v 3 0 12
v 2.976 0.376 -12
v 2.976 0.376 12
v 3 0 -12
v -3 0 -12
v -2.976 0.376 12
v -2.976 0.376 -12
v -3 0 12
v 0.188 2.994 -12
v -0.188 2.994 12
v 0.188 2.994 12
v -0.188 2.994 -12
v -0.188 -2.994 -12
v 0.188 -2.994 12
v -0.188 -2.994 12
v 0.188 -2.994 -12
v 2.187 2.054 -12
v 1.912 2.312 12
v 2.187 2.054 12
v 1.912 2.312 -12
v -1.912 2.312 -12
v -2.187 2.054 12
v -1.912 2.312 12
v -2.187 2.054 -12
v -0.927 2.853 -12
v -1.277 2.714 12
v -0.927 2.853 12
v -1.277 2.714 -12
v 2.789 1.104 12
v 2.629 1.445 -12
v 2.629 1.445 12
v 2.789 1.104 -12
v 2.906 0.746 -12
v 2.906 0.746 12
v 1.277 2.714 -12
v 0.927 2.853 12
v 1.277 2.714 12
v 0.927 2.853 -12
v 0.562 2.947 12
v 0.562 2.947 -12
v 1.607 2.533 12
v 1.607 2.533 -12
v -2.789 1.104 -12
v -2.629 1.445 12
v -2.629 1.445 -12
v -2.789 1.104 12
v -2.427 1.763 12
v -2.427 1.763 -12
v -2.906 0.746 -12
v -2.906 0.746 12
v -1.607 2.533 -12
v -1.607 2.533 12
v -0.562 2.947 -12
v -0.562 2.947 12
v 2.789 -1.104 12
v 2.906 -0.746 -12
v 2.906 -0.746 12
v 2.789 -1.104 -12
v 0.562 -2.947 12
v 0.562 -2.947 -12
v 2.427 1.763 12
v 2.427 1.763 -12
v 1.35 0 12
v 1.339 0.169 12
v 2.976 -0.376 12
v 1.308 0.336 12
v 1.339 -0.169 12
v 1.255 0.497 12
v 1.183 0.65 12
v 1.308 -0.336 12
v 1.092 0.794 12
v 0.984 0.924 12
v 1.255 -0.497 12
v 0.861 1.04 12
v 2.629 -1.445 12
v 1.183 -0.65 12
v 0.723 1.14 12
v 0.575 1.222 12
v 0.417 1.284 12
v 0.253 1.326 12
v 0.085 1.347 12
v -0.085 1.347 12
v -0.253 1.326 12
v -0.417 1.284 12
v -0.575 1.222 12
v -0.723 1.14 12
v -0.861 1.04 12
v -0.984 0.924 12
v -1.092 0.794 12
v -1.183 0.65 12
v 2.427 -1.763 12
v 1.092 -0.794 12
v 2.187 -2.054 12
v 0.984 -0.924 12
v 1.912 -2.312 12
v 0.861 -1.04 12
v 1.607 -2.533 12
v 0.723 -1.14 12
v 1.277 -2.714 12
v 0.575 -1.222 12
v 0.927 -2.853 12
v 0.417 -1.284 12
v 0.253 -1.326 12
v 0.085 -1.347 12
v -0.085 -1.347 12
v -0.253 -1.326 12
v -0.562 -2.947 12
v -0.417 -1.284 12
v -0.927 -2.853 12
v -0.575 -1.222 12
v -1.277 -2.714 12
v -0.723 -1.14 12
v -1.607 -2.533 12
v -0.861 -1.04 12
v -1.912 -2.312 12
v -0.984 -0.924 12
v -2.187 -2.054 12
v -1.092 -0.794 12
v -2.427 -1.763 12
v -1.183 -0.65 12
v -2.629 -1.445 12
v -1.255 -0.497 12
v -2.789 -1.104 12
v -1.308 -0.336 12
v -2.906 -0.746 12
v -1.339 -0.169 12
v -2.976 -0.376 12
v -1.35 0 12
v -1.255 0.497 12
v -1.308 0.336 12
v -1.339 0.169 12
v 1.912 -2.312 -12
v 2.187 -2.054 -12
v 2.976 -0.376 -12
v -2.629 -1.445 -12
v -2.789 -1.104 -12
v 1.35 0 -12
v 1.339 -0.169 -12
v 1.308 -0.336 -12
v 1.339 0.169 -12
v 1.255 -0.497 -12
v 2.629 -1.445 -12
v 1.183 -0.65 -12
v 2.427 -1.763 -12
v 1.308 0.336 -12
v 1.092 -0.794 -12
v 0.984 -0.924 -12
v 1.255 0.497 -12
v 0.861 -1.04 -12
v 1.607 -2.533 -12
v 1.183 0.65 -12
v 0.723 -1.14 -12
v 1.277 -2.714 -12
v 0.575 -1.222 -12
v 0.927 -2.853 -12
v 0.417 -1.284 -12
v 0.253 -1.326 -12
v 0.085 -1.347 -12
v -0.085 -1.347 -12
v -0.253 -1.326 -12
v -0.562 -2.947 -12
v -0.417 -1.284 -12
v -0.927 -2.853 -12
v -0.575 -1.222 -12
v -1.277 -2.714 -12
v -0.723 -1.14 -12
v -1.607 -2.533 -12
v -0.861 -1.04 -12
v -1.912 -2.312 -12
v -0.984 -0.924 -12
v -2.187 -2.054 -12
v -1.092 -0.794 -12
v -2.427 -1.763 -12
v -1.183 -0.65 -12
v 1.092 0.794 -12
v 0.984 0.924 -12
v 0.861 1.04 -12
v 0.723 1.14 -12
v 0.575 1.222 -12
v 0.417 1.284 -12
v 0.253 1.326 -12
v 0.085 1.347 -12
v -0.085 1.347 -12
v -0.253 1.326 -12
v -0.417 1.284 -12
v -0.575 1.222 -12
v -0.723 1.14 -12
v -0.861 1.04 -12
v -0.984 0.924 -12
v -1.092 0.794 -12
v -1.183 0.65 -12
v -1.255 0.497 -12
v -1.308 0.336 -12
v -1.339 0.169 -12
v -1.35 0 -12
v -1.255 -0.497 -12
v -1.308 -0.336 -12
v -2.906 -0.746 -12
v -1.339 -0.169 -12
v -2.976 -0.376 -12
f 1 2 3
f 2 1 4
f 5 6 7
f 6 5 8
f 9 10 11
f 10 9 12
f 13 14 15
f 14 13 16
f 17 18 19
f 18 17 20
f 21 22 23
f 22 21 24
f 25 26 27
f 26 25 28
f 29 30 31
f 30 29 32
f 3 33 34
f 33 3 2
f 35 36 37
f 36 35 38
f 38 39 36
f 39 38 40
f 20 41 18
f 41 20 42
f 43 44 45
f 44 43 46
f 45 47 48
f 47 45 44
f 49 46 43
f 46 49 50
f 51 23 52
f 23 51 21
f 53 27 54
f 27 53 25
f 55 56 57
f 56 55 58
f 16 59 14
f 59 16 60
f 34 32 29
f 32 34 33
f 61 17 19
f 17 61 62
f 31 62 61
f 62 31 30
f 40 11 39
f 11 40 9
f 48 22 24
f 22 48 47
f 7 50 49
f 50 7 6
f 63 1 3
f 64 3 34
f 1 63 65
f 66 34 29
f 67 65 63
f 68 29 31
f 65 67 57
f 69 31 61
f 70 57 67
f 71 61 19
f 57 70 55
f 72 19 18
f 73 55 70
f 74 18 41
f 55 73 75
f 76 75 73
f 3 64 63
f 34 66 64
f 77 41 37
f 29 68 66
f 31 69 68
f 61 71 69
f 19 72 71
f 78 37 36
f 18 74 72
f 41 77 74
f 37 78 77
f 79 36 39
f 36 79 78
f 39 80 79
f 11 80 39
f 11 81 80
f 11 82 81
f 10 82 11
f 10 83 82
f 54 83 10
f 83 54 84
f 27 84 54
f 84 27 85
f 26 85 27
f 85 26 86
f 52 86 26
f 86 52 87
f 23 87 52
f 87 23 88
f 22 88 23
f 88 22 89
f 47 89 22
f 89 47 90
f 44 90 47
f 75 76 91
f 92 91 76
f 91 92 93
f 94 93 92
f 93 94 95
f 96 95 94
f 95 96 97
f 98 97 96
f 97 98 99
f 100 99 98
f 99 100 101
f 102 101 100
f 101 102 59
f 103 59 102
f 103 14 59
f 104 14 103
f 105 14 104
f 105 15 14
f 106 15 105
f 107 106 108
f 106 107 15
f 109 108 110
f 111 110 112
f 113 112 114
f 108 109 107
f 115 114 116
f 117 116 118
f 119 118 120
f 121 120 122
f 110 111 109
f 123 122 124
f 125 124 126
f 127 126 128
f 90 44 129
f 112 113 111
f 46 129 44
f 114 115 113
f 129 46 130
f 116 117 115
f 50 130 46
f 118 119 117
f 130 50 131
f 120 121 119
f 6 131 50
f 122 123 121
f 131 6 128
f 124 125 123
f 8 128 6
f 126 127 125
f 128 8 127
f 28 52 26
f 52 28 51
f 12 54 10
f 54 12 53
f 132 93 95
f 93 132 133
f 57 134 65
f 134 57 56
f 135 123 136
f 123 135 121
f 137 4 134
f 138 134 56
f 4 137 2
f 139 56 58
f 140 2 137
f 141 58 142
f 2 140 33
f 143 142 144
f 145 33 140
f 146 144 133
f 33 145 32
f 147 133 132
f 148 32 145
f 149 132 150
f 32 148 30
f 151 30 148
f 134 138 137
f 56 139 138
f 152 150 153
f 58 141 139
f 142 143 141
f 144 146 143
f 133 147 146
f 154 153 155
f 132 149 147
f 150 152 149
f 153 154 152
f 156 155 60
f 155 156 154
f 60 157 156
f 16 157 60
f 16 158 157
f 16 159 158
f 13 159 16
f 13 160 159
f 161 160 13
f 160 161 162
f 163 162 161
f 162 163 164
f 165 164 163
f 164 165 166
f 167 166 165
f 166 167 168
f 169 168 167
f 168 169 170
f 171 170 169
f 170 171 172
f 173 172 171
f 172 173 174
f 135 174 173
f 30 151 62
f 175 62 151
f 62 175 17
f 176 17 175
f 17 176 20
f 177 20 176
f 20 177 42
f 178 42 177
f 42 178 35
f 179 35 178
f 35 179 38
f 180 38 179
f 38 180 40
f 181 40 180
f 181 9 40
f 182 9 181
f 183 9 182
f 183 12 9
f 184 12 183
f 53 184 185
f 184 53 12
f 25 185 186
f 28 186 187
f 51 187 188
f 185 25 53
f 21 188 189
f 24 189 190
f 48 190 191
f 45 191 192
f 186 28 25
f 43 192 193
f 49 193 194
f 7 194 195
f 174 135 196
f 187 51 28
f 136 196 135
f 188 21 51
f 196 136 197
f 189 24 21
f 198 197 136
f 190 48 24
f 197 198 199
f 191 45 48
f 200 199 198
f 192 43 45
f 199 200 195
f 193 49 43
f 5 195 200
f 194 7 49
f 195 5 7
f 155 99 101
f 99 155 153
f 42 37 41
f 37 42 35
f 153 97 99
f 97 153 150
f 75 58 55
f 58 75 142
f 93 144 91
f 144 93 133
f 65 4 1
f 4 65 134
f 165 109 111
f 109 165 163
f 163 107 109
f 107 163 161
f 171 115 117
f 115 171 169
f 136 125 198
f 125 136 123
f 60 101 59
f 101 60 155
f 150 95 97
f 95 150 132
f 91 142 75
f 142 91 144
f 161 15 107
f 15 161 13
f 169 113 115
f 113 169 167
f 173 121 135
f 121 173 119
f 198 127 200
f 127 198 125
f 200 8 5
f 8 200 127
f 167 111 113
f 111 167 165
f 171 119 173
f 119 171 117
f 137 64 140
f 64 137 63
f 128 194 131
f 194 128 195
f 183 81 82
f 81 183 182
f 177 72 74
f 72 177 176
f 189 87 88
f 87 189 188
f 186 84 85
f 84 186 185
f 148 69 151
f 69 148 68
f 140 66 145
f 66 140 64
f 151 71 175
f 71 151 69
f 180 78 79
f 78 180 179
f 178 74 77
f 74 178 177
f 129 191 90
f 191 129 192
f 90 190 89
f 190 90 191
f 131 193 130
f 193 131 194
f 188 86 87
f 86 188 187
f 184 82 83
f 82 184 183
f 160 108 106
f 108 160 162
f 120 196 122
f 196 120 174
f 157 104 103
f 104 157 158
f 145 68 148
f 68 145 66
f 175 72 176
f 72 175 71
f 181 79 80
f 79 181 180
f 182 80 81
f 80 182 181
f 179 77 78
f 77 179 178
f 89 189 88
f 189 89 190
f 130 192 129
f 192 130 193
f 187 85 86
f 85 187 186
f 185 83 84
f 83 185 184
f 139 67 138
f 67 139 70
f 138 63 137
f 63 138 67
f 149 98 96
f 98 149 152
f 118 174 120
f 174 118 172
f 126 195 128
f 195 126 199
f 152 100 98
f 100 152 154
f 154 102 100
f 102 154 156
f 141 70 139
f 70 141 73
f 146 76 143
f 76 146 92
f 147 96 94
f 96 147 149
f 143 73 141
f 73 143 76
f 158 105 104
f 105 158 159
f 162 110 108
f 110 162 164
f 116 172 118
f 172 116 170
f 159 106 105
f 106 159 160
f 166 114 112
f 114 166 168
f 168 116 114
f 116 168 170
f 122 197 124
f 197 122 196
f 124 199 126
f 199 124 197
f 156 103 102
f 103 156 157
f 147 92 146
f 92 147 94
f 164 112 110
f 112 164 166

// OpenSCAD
$fn = 50;


difference() {
	union() {
		translate(v = [0, 0, -12.0000000000]) {
			cylinder(h = 24, r = 3.0000000000);
		}
	}
	union() {
		translate(v = [0, 0, -100.0000000000]) {
			cylinder(h = 200, r = 1.3500000000);
		}
	}
}
